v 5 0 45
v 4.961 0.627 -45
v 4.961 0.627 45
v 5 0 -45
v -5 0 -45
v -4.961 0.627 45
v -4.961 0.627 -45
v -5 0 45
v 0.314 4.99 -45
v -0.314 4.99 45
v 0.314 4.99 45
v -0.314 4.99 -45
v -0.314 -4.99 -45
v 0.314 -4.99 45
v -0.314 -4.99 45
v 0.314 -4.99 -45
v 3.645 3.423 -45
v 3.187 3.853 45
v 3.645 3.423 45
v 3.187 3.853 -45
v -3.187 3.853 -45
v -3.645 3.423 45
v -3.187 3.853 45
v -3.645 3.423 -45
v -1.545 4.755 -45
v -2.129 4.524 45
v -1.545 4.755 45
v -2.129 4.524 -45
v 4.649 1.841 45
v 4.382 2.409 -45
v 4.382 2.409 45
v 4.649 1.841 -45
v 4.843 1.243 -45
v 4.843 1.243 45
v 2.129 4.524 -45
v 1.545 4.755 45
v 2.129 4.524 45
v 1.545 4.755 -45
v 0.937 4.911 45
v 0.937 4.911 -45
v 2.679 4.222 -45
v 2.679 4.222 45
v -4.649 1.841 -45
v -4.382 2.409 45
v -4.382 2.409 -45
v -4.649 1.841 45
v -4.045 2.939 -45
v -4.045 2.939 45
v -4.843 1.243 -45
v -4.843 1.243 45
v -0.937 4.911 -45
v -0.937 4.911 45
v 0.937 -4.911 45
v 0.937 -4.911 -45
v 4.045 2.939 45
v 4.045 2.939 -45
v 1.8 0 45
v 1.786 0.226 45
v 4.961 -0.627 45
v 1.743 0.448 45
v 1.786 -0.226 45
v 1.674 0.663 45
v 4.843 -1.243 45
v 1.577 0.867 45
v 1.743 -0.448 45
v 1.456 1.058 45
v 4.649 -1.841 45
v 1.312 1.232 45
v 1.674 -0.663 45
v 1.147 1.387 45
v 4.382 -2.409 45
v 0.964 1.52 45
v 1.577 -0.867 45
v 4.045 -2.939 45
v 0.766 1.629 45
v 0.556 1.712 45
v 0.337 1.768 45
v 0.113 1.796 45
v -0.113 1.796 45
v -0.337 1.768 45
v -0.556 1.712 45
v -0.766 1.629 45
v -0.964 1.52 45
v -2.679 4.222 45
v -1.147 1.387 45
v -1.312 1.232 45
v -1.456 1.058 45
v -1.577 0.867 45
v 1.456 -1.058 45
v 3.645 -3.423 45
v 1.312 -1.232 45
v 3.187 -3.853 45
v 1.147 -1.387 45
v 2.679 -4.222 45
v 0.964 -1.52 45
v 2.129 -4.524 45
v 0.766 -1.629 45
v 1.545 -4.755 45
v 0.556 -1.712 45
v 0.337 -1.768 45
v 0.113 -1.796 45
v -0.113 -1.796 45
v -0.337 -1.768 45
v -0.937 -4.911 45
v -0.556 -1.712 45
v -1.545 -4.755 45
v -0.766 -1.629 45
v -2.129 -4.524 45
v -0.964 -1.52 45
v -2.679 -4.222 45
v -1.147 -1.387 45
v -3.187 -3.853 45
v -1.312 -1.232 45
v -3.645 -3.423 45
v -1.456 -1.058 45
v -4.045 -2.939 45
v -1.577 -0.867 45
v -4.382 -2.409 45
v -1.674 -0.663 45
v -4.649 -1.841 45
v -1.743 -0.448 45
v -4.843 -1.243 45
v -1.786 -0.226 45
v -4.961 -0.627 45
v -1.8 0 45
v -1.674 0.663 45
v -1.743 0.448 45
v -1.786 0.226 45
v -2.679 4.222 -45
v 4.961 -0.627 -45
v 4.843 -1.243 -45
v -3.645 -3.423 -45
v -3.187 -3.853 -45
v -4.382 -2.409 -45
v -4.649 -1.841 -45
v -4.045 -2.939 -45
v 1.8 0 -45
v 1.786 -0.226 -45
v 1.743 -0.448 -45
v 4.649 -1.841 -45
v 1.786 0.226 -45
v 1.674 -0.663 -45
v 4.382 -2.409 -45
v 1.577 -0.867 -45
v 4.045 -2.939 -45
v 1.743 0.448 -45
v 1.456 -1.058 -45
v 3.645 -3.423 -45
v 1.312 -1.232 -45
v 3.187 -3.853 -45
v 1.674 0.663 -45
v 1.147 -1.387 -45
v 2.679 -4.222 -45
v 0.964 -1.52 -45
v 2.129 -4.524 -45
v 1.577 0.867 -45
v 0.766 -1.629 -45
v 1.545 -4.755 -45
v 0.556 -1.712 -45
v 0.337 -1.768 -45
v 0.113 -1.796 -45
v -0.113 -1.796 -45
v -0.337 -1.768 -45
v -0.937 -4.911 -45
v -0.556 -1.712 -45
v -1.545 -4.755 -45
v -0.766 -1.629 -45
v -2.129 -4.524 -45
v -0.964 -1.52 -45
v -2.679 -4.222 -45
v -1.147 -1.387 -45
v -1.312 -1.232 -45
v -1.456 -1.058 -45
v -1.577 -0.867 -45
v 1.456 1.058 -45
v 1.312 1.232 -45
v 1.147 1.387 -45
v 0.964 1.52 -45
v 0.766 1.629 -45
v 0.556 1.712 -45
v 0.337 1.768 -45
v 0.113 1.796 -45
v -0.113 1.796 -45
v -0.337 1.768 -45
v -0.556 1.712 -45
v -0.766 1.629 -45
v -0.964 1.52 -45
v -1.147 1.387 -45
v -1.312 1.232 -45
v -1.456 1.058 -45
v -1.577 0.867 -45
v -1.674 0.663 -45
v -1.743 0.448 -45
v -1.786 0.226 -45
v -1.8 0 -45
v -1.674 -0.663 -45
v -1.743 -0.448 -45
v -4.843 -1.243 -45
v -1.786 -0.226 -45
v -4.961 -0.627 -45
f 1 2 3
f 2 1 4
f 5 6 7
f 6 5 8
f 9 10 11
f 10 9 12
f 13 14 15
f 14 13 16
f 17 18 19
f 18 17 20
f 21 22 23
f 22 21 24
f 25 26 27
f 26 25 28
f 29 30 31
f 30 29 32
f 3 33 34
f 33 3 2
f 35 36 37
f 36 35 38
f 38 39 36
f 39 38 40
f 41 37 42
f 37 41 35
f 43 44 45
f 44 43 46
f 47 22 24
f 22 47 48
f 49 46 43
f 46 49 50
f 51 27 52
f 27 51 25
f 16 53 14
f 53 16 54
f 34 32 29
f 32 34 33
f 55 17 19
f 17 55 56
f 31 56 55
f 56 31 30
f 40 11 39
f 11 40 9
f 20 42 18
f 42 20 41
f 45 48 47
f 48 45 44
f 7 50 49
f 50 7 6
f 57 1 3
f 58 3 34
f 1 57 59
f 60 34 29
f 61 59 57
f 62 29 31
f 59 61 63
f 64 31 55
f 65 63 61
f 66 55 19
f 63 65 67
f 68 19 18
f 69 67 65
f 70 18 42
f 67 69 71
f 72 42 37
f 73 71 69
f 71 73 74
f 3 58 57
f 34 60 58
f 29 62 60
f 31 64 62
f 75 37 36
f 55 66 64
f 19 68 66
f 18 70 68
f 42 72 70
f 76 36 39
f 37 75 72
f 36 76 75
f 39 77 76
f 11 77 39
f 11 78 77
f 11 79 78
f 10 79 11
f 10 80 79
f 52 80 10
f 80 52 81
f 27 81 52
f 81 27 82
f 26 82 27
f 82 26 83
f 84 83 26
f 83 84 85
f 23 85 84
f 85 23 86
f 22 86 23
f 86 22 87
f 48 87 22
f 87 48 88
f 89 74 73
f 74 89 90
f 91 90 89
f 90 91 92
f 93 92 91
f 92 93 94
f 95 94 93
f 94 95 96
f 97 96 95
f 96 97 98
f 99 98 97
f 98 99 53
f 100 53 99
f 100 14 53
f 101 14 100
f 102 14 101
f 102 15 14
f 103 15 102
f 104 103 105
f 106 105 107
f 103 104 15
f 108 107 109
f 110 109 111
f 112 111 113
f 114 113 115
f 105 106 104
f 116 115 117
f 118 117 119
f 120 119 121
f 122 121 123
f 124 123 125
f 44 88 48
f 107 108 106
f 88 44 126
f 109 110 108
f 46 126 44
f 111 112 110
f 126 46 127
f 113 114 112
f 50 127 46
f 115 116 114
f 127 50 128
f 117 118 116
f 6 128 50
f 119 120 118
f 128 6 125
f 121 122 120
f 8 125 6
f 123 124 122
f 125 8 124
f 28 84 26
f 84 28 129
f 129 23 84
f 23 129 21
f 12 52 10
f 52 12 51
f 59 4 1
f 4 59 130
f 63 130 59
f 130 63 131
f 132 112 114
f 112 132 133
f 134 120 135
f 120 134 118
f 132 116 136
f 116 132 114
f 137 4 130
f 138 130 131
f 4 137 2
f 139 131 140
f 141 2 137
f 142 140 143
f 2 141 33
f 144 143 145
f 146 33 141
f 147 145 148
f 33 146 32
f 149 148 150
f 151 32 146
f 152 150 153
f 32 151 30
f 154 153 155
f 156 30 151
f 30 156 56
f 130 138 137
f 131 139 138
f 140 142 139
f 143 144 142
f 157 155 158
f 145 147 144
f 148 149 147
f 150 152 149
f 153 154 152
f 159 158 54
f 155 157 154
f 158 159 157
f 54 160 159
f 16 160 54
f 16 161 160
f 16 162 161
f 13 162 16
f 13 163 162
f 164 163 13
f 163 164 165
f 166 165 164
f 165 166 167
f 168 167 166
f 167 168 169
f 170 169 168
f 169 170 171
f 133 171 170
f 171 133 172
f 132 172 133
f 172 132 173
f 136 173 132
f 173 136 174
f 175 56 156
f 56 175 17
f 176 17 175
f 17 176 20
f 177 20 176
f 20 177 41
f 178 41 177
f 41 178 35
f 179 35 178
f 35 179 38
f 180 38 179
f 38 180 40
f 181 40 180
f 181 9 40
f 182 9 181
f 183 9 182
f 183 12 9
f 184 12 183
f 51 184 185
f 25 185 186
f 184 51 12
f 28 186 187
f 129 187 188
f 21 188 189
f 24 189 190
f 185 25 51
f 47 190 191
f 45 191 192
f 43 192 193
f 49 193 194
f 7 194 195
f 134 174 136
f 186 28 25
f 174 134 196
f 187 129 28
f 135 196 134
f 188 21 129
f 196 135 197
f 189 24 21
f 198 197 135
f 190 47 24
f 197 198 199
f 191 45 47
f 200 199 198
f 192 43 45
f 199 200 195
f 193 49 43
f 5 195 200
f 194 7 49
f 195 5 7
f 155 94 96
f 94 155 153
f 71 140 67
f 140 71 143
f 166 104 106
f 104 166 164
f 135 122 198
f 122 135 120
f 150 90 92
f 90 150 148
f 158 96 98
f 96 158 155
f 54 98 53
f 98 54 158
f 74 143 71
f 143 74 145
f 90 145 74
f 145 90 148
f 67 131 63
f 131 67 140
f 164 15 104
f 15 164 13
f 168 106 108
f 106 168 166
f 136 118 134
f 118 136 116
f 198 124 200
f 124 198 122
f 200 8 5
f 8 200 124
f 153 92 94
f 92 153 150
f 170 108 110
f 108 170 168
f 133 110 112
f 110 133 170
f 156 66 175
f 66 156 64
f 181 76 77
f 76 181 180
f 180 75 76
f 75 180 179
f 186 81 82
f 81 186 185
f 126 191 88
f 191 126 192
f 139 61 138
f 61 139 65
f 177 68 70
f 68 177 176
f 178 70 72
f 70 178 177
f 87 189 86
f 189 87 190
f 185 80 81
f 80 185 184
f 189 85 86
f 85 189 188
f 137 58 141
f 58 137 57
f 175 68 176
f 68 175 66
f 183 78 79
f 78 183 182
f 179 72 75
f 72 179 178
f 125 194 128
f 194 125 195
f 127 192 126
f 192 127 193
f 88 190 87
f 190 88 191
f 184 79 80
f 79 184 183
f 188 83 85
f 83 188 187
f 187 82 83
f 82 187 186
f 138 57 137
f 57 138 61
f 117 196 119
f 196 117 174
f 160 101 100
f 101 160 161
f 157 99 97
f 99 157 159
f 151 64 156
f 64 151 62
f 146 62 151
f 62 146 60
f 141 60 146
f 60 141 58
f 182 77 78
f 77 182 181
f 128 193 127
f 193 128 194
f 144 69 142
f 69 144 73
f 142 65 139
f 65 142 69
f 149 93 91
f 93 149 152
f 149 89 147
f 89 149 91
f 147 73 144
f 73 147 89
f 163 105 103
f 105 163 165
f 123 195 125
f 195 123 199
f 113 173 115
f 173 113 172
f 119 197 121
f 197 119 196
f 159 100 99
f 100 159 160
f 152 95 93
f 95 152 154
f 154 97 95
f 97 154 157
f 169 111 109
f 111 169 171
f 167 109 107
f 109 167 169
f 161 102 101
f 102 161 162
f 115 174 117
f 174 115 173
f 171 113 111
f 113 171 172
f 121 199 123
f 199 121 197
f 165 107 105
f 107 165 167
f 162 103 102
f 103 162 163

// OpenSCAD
$fn = 50;


difference() {
	union() {
		translate(v = [0, 0, -45.0000000000]) {
			cylinder(h = 90, r = 5.0000000000);
		}
	}
	union() {
		translate(v = [0, 0, -100.0000000000]) {
			cylinder(h = 200, r = 1.8000000000);
		}
	}
}
